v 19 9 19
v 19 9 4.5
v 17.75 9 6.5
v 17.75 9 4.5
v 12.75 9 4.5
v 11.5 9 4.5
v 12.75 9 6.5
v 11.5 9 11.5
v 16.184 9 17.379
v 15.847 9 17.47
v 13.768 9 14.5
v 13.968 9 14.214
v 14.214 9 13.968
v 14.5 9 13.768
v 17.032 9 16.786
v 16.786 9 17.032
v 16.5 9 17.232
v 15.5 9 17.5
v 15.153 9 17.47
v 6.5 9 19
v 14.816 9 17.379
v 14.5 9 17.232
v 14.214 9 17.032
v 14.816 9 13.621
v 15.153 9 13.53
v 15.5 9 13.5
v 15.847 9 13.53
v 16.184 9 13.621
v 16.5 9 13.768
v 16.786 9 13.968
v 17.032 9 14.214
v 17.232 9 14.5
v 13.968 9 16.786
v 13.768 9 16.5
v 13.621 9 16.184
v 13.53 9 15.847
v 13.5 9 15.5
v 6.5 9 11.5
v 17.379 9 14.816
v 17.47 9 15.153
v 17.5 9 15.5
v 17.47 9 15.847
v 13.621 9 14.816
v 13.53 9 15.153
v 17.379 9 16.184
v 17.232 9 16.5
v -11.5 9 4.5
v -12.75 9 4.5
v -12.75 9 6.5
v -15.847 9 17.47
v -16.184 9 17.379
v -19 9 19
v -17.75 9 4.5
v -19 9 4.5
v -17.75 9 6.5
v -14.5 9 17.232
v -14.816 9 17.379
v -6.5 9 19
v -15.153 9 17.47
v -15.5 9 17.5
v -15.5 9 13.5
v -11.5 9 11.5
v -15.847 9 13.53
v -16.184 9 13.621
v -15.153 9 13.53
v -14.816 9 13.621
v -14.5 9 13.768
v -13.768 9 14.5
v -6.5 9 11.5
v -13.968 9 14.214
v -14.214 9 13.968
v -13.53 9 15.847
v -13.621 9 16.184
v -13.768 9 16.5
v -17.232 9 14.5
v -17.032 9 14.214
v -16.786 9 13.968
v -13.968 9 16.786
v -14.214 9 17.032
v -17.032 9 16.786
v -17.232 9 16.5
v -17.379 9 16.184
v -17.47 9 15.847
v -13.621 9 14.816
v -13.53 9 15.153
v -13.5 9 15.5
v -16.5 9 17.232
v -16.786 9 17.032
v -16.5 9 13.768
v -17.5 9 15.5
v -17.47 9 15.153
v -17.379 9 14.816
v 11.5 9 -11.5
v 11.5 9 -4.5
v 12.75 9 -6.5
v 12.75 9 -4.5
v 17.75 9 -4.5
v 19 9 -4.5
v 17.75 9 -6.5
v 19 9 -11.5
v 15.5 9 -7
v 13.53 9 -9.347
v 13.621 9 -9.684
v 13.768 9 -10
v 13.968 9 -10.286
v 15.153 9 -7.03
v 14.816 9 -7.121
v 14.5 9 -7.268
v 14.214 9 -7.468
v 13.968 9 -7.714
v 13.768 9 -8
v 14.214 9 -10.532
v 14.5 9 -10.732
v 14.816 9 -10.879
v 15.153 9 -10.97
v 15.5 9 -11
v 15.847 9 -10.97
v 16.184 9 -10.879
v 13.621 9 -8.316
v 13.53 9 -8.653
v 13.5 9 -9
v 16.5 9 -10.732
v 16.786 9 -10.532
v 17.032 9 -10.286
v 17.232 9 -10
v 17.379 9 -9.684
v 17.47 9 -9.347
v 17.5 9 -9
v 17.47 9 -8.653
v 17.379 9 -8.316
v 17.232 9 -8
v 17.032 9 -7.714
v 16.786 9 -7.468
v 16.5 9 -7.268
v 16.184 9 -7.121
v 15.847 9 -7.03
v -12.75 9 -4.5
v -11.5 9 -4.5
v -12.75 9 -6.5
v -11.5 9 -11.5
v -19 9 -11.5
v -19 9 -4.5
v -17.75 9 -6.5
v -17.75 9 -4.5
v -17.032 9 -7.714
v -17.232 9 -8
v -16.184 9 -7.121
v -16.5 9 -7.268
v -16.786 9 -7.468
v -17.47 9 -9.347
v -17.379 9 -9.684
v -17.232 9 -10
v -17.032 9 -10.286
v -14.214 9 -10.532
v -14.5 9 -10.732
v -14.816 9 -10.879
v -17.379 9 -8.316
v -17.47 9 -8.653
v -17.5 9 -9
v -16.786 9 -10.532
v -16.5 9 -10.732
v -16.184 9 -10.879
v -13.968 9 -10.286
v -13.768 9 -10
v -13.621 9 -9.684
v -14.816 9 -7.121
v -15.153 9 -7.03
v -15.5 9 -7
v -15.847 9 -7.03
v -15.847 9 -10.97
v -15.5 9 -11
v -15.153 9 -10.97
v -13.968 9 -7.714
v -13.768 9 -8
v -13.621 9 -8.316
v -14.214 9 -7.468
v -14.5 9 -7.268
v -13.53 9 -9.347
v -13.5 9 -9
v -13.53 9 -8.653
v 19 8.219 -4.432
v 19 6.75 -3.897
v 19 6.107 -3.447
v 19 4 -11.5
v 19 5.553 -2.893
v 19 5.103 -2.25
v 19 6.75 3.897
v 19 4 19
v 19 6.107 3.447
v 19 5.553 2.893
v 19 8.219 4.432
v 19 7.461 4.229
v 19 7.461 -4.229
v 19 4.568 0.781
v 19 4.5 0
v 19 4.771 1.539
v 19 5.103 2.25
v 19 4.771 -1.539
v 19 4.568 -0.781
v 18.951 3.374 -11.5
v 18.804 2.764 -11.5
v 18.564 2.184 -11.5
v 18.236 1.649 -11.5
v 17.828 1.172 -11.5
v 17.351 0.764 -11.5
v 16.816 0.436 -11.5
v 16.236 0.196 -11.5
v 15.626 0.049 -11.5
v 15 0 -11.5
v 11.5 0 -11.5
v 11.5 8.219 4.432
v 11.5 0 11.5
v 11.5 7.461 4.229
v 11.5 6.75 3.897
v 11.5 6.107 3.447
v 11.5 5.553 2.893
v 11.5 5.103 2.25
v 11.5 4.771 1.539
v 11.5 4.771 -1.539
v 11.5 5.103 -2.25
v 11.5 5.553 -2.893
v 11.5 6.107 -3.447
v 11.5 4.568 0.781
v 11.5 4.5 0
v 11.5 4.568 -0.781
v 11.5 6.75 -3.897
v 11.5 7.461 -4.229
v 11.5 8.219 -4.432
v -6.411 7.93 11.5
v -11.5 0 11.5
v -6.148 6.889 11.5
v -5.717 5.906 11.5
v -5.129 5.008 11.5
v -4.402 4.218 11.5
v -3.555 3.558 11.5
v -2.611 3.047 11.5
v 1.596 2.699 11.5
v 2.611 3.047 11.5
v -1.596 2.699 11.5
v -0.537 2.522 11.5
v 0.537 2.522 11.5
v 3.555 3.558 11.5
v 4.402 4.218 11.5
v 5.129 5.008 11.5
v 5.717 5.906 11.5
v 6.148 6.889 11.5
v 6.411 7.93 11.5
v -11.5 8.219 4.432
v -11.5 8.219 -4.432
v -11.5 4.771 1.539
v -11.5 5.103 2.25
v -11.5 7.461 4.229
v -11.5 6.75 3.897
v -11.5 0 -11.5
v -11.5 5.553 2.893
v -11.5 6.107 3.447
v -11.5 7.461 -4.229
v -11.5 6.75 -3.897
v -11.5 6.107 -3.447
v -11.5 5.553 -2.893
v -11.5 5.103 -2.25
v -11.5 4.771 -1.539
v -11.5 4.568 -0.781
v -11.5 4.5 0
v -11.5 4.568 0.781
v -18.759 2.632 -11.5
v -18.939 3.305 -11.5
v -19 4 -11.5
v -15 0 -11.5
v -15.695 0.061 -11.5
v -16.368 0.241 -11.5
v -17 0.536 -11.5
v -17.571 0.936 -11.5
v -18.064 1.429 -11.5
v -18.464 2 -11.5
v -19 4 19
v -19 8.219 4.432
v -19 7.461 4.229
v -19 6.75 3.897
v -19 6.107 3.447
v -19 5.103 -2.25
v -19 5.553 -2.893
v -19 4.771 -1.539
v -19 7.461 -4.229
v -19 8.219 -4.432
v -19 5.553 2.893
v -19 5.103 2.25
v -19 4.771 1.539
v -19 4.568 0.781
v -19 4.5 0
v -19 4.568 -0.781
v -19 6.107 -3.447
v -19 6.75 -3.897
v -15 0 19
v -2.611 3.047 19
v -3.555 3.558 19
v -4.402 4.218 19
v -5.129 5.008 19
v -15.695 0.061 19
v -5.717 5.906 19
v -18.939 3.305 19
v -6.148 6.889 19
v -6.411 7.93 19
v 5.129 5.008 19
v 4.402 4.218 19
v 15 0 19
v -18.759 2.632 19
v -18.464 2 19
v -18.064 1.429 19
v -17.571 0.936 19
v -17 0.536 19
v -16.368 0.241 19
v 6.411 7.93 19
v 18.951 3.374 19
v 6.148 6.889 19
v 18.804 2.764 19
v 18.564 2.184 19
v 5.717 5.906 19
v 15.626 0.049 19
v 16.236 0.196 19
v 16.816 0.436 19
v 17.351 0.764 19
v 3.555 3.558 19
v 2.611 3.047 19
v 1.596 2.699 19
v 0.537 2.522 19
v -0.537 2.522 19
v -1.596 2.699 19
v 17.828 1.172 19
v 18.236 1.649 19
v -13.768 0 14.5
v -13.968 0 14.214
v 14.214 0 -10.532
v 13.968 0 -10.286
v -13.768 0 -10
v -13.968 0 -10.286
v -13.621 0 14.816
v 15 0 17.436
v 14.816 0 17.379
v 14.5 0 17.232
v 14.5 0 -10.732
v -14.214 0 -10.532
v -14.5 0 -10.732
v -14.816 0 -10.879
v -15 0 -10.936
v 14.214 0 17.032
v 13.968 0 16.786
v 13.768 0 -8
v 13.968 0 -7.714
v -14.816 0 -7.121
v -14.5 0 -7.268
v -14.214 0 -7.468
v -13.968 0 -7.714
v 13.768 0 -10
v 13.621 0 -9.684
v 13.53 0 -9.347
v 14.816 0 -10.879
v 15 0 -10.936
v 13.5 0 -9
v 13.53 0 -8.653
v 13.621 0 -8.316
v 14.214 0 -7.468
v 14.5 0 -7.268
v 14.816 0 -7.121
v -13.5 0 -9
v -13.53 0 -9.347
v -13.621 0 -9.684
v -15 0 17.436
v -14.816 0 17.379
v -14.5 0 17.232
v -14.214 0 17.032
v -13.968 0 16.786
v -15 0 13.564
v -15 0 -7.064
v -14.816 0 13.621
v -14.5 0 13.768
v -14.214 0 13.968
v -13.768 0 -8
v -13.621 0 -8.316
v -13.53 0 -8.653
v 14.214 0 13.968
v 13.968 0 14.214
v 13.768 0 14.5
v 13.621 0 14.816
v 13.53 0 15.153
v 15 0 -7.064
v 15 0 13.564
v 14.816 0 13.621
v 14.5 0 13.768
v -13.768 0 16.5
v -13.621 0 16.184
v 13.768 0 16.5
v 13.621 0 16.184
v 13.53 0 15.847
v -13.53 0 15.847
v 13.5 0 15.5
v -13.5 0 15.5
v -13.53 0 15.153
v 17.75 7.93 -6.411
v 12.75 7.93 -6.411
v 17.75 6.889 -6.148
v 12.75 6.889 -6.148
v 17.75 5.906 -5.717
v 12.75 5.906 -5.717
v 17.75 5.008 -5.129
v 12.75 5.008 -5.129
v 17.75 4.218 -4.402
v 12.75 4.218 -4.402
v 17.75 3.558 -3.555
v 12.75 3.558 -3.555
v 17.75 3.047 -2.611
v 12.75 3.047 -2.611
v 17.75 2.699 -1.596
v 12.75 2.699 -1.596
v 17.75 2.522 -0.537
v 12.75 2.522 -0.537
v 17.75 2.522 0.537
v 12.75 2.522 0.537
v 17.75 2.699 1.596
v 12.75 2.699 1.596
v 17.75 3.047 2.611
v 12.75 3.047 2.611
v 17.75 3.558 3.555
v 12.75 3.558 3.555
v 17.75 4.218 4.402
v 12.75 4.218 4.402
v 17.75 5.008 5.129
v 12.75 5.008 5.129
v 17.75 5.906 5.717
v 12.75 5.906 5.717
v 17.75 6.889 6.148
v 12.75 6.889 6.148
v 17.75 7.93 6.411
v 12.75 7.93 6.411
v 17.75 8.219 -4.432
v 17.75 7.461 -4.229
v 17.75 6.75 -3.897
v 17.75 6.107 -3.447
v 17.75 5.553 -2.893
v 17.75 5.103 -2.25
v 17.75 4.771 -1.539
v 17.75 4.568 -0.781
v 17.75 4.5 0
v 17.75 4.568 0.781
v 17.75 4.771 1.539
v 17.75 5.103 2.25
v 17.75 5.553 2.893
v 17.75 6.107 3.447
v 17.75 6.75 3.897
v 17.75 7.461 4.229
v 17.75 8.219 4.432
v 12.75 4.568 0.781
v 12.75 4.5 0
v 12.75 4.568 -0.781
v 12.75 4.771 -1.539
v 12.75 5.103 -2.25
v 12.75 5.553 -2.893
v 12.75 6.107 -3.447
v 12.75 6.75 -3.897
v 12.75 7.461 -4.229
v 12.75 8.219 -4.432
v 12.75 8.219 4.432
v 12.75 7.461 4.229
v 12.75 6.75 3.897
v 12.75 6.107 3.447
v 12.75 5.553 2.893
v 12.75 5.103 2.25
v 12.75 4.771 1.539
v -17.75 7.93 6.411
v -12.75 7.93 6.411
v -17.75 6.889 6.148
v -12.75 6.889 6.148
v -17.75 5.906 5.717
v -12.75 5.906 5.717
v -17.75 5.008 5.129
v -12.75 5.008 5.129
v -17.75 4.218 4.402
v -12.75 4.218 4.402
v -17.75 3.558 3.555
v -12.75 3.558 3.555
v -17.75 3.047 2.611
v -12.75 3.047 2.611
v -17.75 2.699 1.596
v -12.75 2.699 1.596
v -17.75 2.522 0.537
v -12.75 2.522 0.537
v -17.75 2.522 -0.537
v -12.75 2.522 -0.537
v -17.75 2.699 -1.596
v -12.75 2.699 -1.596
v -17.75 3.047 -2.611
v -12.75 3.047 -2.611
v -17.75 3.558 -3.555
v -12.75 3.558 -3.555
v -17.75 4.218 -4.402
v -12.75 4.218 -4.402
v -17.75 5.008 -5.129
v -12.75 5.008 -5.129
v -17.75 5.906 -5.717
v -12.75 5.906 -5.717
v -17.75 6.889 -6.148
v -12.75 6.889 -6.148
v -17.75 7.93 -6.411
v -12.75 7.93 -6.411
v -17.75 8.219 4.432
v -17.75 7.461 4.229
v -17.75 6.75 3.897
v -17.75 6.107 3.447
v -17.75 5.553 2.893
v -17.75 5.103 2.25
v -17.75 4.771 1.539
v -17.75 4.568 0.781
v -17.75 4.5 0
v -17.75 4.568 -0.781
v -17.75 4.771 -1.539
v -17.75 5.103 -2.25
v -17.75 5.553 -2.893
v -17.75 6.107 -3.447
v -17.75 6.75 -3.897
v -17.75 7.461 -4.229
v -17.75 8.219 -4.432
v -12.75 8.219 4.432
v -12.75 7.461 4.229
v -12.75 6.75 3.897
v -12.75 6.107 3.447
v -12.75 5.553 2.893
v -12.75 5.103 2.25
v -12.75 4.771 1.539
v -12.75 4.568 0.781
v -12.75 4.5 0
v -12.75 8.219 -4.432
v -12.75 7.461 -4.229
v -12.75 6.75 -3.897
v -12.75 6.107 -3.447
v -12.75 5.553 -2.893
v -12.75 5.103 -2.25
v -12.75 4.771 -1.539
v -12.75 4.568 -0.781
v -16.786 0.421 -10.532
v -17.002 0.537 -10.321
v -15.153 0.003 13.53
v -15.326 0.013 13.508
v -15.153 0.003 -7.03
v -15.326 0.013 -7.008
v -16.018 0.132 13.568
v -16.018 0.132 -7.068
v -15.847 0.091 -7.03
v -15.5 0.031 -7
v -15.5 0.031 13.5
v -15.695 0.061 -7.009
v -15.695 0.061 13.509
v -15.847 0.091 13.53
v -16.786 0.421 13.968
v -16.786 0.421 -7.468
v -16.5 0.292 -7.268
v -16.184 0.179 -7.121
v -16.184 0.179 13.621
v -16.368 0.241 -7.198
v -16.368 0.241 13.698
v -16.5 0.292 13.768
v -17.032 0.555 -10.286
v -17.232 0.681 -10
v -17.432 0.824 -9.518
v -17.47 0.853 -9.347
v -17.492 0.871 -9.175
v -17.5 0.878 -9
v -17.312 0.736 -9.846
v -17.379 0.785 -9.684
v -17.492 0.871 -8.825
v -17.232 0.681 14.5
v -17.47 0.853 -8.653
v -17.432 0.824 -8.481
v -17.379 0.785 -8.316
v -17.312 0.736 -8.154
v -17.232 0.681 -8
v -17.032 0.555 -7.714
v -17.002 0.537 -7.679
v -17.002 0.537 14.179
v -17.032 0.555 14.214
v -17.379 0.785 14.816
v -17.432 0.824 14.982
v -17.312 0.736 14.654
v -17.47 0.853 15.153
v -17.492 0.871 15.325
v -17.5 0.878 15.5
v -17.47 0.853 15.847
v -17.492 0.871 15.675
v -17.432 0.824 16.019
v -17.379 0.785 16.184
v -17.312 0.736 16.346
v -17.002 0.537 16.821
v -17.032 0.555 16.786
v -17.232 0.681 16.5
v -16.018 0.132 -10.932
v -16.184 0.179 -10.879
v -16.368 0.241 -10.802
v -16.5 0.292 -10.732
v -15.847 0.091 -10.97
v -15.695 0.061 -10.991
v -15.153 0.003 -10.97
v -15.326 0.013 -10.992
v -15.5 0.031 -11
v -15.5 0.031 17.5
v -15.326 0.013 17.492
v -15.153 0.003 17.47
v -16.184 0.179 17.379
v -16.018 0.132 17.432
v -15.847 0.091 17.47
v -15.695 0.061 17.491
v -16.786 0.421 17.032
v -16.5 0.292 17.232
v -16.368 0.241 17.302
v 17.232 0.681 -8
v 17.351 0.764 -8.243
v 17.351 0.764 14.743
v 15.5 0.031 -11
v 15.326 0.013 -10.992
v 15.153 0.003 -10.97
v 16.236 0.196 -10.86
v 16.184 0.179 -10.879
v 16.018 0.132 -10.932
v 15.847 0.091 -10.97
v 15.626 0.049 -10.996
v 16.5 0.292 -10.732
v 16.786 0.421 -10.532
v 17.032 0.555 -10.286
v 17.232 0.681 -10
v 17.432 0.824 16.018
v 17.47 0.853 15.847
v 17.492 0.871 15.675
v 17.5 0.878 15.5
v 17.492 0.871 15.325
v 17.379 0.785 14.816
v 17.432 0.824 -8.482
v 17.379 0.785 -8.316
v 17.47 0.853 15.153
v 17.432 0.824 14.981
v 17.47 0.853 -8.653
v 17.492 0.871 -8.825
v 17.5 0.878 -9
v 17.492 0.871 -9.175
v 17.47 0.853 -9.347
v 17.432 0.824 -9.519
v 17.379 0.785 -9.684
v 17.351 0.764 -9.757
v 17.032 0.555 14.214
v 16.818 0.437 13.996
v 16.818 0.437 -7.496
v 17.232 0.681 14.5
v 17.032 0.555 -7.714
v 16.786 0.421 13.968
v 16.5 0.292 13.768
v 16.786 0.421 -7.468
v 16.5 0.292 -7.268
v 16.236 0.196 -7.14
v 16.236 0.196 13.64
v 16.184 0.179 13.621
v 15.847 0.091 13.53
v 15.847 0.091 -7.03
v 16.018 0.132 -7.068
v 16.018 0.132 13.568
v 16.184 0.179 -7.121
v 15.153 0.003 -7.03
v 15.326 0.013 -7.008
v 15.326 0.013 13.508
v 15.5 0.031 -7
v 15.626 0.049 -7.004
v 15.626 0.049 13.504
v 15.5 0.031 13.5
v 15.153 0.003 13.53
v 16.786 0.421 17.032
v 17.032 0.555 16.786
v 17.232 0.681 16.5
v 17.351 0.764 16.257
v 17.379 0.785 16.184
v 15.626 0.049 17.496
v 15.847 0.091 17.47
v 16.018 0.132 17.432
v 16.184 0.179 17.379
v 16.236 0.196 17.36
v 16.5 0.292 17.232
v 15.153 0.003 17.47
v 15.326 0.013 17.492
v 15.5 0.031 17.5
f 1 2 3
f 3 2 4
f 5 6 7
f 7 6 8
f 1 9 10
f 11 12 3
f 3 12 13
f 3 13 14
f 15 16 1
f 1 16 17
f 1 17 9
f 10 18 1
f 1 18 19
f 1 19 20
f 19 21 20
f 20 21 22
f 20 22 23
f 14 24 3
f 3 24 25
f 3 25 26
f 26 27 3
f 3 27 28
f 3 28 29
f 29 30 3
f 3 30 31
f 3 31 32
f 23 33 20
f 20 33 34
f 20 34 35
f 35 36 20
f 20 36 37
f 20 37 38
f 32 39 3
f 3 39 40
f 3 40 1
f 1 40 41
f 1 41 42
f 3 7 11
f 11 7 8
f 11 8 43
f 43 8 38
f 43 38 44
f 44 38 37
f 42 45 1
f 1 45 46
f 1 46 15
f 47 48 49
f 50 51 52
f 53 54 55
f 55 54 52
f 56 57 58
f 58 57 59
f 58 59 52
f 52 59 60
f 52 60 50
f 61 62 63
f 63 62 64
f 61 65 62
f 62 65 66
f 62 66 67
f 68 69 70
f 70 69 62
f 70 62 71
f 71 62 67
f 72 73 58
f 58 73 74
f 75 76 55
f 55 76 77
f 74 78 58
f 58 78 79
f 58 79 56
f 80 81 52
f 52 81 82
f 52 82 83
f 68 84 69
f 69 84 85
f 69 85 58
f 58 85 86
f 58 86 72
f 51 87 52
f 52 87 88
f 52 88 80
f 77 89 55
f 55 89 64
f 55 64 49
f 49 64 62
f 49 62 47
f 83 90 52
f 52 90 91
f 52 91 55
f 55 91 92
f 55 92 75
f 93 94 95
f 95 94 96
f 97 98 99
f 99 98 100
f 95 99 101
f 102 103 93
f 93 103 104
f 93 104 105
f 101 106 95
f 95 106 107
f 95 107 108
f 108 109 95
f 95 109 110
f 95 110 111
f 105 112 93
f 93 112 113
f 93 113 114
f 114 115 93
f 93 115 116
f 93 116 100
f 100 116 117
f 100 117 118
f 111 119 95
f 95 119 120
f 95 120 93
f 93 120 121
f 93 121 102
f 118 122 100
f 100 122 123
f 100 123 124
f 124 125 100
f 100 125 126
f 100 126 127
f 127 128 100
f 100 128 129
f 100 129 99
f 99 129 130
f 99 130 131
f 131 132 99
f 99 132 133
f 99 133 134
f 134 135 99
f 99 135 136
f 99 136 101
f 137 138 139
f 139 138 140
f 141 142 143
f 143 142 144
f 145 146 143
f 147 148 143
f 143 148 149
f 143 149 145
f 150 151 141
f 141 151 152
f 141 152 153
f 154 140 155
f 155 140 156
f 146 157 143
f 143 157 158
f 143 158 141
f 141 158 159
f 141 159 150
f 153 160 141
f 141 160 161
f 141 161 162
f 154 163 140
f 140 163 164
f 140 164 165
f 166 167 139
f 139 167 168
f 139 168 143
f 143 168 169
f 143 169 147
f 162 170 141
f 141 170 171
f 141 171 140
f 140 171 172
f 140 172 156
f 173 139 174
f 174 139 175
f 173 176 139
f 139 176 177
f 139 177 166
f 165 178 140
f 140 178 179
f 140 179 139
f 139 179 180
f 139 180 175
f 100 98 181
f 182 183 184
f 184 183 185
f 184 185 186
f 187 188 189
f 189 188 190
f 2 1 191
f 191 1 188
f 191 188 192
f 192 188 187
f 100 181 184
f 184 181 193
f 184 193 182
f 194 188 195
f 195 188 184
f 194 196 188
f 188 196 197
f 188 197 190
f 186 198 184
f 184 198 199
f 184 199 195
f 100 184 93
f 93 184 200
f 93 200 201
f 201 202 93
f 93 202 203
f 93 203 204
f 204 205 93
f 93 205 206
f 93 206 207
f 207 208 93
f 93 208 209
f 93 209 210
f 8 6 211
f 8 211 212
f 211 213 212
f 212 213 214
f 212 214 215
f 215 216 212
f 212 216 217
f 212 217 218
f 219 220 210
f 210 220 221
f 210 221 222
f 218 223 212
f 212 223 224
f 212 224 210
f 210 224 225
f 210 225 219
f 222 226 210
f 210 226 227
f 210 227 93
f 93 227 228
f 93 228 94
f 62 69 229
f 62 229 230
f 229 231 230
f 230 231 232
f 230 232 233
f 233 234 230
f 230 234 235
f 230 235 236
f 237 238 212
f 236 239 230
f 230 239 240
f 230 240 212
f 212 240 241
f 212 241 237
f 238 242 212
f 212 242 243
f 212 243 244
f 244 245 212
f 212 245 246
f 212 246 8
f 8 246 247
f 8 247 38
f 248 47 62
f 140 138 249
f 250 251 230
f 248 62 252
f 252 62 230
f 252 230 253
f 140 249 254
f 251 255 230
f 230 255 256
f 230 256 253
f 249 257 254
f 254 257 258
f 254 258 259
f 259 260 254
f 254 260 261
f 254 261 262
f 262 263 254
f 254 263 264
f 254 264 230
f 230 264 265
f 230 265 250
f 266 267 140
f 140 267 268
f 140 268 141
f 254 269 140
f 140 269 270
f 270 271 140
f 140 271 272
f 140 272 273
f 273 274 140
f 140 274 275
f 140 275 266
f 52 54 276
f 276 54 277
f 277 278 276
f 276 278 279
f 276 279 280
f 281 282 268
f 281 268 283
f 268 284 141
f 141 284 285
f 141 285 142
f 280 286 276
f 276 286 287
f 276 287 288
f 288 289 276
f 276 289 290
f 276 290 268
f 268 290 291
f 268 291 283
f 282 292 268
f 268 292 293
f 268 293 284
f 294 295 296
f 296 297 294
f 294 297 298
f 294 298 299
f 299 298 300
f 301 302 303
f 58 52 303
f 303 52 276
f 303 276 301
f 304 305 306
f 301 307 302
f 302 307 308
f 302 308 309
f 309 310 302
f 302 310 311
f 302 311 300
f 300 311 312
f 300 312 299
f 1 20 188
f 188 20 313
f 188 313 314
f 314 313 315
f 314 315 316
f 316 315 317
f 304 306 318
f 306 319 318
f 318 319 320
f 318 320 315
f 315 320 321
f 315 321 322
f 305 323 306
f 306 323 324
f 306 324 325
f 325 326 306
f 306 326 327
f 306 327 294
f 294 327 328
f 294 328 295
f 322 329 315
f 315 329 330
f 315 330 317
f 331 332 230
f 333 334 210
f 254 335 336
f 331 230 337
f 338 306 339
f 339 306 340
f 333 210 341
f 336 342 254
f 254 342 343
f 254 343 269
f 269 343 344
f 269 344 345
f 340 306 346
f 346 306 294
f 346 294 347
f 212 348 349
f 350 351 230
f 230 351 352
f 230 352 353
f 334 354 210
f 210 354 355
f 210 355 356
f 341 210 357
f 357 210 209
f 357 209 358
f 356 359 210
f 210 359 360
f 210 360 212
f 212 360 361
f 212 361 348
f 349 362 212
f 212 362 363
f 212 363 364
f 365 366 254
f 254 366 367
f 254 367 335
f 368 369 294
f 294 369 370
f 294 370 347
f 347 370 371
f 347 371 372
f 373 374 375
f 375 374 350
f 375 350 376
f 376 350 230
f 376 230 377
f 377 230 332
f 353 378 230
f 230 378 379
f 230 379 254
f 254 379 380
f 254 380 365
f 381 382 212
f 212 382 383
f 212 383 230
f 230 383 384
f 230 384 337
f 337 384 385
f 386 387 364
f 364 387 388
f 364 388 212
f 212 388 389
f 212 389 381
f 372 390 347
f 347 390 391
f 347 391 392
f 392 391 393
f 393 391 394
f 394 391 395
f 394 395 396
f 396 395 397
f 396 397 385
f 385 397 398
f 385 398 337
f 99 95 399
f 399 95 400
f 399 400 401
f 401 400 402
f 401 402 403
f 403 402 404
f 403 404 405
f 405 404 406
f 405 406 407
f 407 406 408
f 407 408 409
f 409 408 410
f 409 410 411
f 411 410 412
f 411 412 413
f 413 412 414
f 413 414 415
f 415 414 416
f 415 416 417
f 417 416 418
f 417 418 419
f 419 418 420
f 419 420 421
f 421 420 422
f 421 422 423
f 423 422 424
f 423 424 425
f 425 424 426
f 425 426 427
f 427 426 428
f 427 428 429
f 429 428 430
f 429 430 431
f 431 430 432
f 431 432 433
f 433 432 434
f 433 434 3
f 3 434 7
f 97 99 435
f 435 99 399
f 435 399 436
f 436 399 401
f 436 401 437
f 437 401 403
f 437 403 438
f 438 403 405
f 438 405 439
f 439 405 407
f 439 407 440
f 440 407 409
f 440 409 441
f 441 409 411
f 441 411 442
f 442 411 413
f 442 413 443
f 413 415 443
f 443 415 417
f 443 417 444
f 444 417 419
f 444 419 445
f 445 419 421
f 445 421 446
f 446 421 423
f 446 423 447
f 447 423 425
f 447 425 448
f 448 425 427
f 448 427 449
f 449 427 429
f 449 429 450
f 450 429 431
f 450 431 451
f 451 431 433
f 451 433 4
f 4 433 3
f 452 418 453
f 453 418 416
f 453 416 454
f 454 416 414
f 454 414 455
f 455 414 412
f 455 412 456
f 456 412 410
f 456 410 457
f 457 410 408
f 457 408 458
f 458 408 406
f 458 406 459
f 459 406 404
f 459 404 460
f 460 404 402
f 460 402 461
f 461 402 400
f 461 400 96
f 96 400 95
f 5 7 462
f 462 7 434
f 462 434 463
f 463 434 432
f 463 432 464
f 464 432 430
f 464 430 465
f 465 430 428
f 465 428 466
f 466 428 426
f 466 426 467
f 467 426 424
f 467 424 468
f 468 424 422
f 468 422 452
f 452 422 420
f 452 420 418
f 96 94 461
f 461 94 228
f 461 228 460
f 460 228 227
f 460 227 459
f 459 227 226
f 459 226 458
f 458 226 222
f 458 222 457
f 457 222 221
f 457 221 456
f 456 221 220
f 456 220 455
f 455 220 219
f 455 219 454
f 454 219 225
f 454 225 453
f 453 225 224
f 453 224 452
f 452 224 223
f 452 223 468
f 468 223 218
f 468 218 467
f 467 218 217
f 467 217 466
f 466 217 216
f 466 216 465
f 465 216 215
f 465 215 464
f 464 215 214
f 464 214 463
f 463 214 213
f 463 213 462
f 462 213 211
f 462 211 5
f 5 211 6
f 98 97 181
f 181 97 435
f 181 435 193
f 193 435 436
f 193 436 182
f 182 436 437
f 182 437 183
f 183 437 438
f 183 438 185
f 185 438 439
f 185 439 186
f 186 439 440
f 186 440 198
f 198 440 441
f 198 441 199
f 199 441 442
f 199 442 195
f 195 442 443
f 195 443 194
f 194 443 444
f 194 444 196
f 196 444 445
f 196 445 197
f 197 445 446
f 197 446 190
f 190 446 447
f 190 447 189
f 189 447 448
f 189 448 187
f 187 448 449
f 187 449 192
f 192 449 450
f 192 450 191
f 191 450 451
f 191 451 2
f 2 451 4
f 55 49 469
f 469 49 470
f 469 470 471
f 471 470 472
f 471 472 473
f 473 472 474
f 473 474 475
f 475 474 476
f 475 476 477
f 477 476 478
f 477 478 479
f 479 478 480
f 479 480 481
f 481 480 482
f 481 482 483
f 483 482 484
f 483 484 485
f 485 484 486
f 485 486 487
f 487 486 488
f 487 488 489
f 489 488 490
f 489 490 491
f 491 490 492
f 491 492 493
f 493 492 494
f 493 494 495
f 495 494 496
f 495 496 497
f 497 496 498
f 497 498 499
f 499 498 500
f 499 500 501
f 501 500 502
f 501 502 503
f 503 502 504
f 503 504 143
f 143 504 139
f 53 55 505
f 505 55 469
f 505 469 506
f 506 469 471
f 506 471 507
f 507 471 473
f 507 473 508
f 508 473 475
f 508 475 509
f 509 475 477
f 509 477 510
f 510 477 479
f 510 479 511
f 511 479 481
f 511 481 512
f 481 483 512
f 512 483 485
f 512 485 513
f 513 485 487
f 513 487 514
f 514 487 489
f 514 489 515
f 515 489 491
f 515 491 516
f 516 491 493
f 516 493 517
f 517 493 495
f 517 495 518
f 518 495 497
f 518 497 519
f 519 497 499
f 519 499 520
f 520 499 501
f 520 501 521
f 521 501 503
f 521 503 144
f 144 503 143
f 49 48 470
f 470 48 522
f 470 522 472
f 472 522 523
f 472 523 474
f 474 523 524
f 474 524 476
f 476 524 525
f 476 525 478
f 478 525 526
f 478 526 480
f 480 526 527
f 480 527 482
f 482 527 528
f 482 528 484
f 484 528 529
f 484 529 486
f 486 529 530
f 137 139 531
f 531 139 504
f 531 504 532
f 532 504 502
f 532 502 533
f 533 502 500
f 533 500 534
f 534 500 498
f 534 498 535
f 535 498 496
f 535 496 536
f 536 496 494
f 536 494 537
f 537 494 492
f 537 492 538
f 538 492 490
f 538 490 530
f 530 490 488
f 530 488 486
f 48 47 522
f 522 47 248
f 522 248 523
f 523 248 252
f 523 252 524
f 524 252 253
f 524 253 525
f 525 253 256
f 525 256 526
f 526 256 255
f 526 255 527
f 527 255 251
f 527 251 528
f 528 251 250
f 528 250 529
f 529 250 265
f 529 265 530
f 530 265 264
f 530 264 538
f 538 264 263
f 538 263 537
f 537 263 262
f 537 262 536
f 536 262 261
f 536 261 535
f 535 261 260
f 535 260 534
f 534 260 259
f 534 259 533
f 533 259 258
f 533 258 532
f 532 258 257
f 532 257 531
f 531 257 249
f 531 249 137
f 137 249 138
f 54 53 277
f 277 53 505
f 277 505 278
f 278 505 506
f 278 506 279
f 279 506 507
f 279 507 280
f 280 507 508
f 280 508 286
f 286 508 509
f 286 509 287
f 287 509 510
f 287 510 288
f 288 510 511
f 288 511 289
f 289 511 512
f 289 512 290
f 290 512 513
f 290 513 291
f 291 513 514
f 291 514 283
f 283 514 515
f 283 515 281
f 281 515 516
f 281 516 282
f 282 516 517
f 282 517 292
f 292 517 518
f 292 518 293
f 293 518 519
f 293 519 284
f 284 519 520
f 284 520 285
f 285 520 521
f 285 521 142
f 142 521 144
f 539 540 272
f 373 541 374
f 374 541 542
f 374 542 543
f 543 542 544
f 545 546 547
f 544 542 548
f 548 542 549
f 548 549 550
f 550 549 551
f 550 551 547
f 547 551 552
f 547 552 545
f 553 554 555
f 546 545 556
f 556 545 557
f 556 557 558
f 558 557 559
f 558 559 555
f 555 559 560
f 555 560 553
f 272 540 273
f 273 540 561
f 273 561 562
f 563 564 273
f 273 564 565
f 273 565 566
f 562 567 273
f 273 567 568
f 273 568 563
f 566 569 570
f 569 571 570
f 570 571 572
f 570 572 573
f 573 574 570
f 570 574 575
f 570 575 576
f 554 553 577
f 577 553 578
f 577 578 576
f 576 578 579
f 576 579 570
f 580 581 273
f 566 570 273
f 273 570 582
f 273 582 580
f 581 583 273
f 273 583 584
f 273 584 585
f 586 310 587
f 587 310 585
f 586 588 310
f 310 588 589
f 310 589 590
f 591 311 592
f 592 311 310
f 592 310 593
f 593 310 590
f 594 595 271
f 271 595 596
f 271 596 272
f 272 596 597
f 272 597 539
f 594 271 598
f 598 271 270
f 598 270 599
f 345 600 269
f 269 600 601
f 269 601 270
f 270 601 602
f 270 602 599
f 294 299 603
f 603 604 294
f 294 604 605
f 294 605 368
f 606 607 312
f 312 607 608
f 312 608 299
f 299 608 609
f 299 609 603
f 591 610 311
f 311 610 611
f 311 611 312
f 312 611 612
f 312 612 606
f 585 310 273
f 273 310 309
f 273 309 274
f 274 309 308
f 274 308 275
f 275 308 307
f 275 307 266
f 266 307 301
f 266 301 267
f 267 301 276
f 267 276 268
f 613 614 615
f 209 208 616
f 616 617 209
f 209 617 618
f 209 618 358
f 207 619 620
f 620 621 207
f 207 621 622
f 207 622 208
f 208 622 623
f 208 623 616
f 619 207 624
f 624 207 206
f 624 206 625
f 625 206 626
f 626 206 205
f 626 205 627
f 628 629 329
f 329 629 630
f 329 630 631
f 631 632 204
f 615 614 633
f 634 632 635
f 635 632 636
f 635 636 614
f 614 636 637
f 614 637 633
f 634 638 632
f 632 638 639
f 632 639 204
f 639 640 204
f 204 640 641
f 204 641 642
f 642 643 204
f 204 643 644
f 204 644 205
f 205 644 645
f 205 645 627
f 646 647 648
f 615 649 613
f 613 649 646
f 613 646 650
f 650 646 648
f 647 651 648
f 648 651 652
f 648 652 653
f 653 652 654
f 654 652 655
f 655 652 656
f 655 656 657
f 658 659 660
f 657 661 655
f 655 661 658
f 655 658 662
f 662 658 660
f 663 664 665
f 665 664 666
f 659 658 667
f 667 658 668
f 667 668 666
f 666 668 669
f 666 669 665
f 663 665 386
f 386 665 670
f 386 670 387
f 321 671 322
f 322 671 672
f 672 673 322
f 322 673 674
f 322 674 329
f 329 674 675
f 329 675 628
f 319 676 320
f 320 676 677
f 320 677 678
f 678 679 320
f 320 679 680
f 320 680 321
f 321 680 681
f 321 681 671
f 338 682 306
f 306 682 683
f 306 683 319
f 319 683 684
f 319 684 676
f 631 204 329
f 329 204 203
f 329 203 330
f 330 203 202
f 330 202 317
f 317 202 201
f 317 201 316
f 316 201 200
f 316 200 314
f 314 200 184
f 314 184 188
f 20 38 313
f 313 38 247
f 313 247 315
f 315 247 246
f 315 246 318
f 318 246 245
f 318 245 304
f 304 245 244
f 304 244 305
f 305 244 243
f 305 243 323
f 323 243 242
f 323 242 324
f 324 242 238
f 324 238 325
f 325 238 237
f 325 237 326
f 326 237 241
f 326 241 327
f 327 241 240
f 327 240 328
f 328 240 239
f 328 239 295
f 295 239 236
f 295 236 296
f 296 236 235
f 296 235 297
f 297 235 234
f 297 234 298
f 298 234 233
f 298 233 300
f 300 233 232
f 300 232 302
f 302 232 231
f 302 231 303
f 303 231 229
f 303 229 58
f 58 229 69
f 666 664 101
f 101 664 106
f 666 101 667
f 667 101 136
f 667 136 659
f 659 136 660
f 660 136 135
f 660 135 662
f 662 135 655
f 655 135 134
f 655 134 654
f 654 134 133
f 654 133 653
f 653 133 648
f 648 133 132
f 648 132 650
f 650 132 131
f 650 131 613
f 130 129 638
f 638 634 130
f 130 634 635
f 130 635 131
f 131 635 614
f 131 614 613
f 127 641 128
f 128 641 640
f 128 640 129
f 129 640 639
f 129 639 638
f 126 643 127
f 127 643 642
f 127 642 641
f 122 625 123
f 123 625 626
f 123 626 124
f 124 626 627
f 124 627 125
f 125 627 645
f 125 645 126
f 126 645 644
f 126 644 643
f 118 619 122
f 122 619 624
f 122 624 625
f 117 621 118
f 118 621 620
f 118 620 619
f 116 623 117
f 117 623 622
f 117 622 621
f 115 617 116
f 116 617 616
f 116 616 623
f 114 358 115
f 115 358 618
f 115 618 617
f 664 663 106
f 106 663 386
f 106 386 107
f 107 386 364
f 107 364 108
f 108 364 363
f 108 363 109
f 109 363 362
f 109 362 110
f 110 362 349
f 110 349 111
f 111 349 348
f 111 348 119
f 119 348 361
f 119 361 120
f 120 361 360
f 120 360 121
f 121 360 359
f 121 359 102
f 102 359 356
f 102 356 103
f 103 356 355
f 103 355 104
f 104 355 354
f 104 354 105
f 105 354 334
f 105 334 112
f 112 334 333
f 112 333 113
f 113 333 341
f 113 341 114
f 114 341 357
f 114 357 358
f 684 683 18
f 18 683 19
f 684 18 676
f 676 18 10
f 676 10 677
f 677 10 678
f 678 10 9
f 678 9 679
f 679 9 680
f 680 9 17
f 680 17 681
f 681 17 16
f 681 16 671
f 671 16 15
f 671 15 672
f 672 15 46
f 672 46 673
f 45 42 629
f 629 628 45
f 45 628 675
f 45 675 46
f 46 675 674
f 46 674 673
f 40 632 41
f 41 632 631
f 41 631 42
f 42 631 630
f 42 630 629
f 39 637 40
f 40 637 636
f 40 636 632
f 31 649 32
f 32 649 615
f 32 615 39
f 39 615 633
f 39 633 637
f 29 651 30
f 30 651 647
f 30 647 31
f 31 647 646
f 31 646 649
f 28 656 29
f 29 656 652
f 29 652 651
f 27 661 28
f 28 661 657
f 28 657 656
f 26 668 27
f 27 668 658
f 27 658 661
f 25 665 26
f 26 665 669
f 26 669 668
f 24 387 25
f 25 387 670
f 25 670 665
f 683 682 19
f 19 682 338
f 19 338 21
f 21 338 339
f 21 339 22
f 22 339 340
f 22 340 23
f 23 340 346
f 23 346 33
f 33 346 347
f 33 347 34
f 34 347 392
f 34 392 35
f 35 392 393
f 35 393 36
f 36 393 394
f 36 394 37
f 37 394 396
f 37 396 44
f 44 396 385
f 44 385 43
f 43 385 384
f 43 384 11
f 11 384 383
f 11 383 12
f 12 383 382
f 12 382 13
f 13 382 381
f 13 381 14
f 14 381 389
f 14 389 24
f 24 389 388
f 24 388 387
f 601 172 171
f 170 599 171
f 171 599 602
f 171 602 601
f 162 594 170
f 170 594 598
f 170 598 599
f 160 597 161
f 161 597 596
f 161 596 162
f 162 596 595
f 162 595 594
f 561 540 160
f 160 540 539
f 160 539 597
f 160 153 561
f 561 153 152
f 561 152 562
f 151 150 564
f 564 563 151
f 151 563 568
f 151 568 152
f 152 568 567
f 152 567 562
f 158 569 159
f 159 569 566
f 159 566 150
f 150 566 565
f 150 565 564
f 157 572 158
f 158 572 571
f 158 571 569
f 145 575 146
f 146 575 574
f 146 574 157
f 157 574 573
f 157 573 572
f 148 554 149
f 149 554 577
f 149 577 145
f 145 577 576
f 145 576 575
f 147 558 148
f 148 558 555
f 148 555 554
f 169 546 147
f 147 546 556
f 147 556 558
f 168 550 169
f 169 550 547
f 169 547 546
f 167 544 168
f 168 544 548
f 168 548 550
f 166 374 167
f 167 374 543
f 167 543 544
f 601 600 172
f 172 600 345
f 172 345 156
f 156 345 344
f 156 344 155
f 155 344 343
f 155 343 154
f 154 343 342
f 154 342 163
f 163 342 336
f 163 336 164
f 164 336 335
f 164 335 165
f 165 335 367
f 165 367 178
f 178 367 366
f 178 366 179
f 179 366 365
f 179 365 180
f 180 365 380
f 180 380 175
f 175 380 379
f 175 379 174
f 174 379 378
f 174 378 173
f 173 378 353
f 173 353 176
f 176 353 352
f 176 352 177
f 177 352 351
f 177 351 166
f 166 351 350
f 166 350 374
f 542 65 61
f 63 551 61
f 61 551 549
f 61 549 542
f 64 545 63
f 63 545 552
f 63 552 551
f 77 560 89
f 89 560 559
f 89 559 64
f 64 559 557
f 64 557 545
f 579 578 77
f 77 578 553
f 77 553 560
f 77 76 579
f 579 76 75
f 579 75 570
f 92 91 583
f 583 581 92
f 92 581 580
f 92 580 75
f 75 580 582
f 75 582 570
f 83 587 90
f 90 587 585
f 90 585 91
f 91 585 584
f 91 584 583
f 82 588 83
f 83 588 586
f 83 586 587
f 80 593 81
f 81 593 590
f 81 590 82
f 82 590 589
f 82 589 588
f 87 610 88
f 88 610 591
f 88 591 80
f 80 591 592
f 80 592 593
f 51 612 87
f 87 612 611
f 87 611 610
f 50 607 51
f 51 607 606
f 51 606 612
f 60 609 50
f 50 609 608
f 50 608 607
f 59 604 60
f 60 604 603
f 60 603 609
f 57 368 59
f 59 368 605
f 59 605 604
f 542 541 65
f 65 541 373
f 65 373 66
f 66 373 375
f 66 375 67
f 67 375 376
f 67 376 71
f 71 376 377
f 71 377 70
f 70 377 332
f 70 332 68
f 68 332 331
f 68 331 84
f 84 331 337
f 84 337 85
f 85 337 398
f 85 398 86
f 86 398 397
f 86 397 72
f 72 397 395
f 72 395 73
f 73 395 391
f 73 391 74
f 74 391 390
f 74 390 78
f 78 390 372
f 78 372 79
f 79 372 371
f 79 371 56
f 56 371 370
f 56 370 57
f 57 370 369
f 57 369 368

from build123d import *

# Parameters (mm, degrees)
BOSS_EXTRUDE1_DEPTH     = 9
SKETCH2_R               = 6.5
CUT_EXTRUDE1_DEPTH      = 2.5
SKETCH3_R               = 4.5
CUT_EXTRUDE2_DEPTH      = 20
FILLET1_R               = 4
SKETCH4_R               = 6.5
CUT_EXTRUDE3_DEPTH      = 20
CUT_EXTRUDE3_DEPTH_BACK = 12.5
SKETCH6_R               = 2
CUT_EXTRUDE4_DEPTH      = 10


with BuildPart() as part:
    # Sketch1 → Boss-Extrude1 (new body)
    with BuildSketch(Plane(origin=(0, 0, 0), x_dir=(1, 0, 0), z_dir=(0, 1, 0))):
        Polygon((-19, 11.5), (-19, -19), (19, -19), (19, 11.5), (11.5, 11.5), (11.5, -11.5), (-11.5, -11.5), (-11.5, 11.5), align=None)
    extrude(amount=BOSS_EXTRUDE1_DEPTH)

    # Sketch2 → Cut-Extrude1 (cut, symmetric)
    with BuildSketch(Plane(origin=(15.25, 0, 0), x_dir=(0, 0, -1), z_dir=(1, 0, 0))):
        with Locations((0, 9)):
            Circle(SKETCH2_R)
    cut_extrude1 = extrude(amount=CUT_EXTRUDE1_DEPTH, both=True, mode=Mode.SUBTRACT)

    # Sketch3 → Cut-Extrude2 (cut, through all)
    with BuildSketch(Plane(origin=(0, 0, 0), x_dir=(0, 0, -1), z_dir=(1, 0, 0))):
        with Locations((0, 9)):
            Circle(SKETCH3_R)
    cut_extrude2 = extrude(amount=CUT_EXTRUDE2_DEPTH, mode=Mode.SUBTRACT)

    # Mirror1: Cut-Extrude1, Cut-Extrude2 across plane
    add(cut_extrude1.mirror(Plane(origin=(0, 0, 0), x_dir=(0, 0, 1), z_dir=(1, 0, 0))), mode=Mode.SUBTRACT)
    add(cut_extrude2.mirror(Plane(origin=(0, 0, 0), x_dir=(0, 0, 1), z_dir=(1, 0, 0))), mode=Mode.SUBTRACT)

    # Fillet1
    fillet1_edges = [part.edges().sort_by_distance(p)[0] for p in [
        (19, 0, 3.75),
        (-19, 0, 3.75),
    ]]
    fillet(fillet1_edges, radius=FILLET1_R)

    # Sketch4 → Cut-Extrude3 (cut, two sides)
    with BuildSketch(Plane.XY) as cut_extrude3_sk:
        with Locations((0, 9)):
            Circle(SKETCH4_R)
    extrude(amount=CUT_EXTRUDE3_DEPTH, mode=Mode.SUBTRACT)
    extrude(cut_extrude3_sk.sketch, amount=-CUT_EXTRUDE3_DEPTH_BACK, mode=Mode.SUBTRACT)

    # Sketch6 → Cut-Extrude4 (cut, through all)
    with BuildSketch(Plane(origin=(0, 9, 0), x_dir=(1, 0, 0), z_dir=(0, 1, 0))):
        with Locations((-15.5, 9)):
            Circle(SKETCH6_R)
        with Locations((15.5, 9)):
            Circle(SKETCH6_R)
        with Locations((15.5, -15.5)):
            Circle(SKETCH6_R)
        with Locations((-15.5, -15.5)):
            Circle(SKETCH6_R)
    extrude(amount=-CUT_EXTRUDE4_DEPTH, mode=Mode.SUBTRACT)


solid = part.part
